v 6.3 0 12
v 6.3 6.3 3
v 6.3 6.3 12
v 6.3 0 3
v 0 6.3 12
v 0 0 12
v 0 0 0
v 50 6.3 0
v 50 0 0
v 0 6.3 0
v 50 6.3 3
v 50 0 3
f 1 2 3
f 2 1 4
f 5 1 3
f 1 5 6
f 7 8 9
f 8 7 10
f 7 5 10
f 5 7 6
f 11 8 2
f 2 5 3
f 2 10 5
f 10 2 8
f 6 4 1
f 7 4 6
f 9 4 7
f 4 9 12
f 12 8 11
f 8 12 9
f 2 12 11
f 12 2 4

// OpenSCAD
qin = 6.3; // 6.35mm per 1/4 in

cube([qin, qin, 12]);
cube([50, qin, 3]);
